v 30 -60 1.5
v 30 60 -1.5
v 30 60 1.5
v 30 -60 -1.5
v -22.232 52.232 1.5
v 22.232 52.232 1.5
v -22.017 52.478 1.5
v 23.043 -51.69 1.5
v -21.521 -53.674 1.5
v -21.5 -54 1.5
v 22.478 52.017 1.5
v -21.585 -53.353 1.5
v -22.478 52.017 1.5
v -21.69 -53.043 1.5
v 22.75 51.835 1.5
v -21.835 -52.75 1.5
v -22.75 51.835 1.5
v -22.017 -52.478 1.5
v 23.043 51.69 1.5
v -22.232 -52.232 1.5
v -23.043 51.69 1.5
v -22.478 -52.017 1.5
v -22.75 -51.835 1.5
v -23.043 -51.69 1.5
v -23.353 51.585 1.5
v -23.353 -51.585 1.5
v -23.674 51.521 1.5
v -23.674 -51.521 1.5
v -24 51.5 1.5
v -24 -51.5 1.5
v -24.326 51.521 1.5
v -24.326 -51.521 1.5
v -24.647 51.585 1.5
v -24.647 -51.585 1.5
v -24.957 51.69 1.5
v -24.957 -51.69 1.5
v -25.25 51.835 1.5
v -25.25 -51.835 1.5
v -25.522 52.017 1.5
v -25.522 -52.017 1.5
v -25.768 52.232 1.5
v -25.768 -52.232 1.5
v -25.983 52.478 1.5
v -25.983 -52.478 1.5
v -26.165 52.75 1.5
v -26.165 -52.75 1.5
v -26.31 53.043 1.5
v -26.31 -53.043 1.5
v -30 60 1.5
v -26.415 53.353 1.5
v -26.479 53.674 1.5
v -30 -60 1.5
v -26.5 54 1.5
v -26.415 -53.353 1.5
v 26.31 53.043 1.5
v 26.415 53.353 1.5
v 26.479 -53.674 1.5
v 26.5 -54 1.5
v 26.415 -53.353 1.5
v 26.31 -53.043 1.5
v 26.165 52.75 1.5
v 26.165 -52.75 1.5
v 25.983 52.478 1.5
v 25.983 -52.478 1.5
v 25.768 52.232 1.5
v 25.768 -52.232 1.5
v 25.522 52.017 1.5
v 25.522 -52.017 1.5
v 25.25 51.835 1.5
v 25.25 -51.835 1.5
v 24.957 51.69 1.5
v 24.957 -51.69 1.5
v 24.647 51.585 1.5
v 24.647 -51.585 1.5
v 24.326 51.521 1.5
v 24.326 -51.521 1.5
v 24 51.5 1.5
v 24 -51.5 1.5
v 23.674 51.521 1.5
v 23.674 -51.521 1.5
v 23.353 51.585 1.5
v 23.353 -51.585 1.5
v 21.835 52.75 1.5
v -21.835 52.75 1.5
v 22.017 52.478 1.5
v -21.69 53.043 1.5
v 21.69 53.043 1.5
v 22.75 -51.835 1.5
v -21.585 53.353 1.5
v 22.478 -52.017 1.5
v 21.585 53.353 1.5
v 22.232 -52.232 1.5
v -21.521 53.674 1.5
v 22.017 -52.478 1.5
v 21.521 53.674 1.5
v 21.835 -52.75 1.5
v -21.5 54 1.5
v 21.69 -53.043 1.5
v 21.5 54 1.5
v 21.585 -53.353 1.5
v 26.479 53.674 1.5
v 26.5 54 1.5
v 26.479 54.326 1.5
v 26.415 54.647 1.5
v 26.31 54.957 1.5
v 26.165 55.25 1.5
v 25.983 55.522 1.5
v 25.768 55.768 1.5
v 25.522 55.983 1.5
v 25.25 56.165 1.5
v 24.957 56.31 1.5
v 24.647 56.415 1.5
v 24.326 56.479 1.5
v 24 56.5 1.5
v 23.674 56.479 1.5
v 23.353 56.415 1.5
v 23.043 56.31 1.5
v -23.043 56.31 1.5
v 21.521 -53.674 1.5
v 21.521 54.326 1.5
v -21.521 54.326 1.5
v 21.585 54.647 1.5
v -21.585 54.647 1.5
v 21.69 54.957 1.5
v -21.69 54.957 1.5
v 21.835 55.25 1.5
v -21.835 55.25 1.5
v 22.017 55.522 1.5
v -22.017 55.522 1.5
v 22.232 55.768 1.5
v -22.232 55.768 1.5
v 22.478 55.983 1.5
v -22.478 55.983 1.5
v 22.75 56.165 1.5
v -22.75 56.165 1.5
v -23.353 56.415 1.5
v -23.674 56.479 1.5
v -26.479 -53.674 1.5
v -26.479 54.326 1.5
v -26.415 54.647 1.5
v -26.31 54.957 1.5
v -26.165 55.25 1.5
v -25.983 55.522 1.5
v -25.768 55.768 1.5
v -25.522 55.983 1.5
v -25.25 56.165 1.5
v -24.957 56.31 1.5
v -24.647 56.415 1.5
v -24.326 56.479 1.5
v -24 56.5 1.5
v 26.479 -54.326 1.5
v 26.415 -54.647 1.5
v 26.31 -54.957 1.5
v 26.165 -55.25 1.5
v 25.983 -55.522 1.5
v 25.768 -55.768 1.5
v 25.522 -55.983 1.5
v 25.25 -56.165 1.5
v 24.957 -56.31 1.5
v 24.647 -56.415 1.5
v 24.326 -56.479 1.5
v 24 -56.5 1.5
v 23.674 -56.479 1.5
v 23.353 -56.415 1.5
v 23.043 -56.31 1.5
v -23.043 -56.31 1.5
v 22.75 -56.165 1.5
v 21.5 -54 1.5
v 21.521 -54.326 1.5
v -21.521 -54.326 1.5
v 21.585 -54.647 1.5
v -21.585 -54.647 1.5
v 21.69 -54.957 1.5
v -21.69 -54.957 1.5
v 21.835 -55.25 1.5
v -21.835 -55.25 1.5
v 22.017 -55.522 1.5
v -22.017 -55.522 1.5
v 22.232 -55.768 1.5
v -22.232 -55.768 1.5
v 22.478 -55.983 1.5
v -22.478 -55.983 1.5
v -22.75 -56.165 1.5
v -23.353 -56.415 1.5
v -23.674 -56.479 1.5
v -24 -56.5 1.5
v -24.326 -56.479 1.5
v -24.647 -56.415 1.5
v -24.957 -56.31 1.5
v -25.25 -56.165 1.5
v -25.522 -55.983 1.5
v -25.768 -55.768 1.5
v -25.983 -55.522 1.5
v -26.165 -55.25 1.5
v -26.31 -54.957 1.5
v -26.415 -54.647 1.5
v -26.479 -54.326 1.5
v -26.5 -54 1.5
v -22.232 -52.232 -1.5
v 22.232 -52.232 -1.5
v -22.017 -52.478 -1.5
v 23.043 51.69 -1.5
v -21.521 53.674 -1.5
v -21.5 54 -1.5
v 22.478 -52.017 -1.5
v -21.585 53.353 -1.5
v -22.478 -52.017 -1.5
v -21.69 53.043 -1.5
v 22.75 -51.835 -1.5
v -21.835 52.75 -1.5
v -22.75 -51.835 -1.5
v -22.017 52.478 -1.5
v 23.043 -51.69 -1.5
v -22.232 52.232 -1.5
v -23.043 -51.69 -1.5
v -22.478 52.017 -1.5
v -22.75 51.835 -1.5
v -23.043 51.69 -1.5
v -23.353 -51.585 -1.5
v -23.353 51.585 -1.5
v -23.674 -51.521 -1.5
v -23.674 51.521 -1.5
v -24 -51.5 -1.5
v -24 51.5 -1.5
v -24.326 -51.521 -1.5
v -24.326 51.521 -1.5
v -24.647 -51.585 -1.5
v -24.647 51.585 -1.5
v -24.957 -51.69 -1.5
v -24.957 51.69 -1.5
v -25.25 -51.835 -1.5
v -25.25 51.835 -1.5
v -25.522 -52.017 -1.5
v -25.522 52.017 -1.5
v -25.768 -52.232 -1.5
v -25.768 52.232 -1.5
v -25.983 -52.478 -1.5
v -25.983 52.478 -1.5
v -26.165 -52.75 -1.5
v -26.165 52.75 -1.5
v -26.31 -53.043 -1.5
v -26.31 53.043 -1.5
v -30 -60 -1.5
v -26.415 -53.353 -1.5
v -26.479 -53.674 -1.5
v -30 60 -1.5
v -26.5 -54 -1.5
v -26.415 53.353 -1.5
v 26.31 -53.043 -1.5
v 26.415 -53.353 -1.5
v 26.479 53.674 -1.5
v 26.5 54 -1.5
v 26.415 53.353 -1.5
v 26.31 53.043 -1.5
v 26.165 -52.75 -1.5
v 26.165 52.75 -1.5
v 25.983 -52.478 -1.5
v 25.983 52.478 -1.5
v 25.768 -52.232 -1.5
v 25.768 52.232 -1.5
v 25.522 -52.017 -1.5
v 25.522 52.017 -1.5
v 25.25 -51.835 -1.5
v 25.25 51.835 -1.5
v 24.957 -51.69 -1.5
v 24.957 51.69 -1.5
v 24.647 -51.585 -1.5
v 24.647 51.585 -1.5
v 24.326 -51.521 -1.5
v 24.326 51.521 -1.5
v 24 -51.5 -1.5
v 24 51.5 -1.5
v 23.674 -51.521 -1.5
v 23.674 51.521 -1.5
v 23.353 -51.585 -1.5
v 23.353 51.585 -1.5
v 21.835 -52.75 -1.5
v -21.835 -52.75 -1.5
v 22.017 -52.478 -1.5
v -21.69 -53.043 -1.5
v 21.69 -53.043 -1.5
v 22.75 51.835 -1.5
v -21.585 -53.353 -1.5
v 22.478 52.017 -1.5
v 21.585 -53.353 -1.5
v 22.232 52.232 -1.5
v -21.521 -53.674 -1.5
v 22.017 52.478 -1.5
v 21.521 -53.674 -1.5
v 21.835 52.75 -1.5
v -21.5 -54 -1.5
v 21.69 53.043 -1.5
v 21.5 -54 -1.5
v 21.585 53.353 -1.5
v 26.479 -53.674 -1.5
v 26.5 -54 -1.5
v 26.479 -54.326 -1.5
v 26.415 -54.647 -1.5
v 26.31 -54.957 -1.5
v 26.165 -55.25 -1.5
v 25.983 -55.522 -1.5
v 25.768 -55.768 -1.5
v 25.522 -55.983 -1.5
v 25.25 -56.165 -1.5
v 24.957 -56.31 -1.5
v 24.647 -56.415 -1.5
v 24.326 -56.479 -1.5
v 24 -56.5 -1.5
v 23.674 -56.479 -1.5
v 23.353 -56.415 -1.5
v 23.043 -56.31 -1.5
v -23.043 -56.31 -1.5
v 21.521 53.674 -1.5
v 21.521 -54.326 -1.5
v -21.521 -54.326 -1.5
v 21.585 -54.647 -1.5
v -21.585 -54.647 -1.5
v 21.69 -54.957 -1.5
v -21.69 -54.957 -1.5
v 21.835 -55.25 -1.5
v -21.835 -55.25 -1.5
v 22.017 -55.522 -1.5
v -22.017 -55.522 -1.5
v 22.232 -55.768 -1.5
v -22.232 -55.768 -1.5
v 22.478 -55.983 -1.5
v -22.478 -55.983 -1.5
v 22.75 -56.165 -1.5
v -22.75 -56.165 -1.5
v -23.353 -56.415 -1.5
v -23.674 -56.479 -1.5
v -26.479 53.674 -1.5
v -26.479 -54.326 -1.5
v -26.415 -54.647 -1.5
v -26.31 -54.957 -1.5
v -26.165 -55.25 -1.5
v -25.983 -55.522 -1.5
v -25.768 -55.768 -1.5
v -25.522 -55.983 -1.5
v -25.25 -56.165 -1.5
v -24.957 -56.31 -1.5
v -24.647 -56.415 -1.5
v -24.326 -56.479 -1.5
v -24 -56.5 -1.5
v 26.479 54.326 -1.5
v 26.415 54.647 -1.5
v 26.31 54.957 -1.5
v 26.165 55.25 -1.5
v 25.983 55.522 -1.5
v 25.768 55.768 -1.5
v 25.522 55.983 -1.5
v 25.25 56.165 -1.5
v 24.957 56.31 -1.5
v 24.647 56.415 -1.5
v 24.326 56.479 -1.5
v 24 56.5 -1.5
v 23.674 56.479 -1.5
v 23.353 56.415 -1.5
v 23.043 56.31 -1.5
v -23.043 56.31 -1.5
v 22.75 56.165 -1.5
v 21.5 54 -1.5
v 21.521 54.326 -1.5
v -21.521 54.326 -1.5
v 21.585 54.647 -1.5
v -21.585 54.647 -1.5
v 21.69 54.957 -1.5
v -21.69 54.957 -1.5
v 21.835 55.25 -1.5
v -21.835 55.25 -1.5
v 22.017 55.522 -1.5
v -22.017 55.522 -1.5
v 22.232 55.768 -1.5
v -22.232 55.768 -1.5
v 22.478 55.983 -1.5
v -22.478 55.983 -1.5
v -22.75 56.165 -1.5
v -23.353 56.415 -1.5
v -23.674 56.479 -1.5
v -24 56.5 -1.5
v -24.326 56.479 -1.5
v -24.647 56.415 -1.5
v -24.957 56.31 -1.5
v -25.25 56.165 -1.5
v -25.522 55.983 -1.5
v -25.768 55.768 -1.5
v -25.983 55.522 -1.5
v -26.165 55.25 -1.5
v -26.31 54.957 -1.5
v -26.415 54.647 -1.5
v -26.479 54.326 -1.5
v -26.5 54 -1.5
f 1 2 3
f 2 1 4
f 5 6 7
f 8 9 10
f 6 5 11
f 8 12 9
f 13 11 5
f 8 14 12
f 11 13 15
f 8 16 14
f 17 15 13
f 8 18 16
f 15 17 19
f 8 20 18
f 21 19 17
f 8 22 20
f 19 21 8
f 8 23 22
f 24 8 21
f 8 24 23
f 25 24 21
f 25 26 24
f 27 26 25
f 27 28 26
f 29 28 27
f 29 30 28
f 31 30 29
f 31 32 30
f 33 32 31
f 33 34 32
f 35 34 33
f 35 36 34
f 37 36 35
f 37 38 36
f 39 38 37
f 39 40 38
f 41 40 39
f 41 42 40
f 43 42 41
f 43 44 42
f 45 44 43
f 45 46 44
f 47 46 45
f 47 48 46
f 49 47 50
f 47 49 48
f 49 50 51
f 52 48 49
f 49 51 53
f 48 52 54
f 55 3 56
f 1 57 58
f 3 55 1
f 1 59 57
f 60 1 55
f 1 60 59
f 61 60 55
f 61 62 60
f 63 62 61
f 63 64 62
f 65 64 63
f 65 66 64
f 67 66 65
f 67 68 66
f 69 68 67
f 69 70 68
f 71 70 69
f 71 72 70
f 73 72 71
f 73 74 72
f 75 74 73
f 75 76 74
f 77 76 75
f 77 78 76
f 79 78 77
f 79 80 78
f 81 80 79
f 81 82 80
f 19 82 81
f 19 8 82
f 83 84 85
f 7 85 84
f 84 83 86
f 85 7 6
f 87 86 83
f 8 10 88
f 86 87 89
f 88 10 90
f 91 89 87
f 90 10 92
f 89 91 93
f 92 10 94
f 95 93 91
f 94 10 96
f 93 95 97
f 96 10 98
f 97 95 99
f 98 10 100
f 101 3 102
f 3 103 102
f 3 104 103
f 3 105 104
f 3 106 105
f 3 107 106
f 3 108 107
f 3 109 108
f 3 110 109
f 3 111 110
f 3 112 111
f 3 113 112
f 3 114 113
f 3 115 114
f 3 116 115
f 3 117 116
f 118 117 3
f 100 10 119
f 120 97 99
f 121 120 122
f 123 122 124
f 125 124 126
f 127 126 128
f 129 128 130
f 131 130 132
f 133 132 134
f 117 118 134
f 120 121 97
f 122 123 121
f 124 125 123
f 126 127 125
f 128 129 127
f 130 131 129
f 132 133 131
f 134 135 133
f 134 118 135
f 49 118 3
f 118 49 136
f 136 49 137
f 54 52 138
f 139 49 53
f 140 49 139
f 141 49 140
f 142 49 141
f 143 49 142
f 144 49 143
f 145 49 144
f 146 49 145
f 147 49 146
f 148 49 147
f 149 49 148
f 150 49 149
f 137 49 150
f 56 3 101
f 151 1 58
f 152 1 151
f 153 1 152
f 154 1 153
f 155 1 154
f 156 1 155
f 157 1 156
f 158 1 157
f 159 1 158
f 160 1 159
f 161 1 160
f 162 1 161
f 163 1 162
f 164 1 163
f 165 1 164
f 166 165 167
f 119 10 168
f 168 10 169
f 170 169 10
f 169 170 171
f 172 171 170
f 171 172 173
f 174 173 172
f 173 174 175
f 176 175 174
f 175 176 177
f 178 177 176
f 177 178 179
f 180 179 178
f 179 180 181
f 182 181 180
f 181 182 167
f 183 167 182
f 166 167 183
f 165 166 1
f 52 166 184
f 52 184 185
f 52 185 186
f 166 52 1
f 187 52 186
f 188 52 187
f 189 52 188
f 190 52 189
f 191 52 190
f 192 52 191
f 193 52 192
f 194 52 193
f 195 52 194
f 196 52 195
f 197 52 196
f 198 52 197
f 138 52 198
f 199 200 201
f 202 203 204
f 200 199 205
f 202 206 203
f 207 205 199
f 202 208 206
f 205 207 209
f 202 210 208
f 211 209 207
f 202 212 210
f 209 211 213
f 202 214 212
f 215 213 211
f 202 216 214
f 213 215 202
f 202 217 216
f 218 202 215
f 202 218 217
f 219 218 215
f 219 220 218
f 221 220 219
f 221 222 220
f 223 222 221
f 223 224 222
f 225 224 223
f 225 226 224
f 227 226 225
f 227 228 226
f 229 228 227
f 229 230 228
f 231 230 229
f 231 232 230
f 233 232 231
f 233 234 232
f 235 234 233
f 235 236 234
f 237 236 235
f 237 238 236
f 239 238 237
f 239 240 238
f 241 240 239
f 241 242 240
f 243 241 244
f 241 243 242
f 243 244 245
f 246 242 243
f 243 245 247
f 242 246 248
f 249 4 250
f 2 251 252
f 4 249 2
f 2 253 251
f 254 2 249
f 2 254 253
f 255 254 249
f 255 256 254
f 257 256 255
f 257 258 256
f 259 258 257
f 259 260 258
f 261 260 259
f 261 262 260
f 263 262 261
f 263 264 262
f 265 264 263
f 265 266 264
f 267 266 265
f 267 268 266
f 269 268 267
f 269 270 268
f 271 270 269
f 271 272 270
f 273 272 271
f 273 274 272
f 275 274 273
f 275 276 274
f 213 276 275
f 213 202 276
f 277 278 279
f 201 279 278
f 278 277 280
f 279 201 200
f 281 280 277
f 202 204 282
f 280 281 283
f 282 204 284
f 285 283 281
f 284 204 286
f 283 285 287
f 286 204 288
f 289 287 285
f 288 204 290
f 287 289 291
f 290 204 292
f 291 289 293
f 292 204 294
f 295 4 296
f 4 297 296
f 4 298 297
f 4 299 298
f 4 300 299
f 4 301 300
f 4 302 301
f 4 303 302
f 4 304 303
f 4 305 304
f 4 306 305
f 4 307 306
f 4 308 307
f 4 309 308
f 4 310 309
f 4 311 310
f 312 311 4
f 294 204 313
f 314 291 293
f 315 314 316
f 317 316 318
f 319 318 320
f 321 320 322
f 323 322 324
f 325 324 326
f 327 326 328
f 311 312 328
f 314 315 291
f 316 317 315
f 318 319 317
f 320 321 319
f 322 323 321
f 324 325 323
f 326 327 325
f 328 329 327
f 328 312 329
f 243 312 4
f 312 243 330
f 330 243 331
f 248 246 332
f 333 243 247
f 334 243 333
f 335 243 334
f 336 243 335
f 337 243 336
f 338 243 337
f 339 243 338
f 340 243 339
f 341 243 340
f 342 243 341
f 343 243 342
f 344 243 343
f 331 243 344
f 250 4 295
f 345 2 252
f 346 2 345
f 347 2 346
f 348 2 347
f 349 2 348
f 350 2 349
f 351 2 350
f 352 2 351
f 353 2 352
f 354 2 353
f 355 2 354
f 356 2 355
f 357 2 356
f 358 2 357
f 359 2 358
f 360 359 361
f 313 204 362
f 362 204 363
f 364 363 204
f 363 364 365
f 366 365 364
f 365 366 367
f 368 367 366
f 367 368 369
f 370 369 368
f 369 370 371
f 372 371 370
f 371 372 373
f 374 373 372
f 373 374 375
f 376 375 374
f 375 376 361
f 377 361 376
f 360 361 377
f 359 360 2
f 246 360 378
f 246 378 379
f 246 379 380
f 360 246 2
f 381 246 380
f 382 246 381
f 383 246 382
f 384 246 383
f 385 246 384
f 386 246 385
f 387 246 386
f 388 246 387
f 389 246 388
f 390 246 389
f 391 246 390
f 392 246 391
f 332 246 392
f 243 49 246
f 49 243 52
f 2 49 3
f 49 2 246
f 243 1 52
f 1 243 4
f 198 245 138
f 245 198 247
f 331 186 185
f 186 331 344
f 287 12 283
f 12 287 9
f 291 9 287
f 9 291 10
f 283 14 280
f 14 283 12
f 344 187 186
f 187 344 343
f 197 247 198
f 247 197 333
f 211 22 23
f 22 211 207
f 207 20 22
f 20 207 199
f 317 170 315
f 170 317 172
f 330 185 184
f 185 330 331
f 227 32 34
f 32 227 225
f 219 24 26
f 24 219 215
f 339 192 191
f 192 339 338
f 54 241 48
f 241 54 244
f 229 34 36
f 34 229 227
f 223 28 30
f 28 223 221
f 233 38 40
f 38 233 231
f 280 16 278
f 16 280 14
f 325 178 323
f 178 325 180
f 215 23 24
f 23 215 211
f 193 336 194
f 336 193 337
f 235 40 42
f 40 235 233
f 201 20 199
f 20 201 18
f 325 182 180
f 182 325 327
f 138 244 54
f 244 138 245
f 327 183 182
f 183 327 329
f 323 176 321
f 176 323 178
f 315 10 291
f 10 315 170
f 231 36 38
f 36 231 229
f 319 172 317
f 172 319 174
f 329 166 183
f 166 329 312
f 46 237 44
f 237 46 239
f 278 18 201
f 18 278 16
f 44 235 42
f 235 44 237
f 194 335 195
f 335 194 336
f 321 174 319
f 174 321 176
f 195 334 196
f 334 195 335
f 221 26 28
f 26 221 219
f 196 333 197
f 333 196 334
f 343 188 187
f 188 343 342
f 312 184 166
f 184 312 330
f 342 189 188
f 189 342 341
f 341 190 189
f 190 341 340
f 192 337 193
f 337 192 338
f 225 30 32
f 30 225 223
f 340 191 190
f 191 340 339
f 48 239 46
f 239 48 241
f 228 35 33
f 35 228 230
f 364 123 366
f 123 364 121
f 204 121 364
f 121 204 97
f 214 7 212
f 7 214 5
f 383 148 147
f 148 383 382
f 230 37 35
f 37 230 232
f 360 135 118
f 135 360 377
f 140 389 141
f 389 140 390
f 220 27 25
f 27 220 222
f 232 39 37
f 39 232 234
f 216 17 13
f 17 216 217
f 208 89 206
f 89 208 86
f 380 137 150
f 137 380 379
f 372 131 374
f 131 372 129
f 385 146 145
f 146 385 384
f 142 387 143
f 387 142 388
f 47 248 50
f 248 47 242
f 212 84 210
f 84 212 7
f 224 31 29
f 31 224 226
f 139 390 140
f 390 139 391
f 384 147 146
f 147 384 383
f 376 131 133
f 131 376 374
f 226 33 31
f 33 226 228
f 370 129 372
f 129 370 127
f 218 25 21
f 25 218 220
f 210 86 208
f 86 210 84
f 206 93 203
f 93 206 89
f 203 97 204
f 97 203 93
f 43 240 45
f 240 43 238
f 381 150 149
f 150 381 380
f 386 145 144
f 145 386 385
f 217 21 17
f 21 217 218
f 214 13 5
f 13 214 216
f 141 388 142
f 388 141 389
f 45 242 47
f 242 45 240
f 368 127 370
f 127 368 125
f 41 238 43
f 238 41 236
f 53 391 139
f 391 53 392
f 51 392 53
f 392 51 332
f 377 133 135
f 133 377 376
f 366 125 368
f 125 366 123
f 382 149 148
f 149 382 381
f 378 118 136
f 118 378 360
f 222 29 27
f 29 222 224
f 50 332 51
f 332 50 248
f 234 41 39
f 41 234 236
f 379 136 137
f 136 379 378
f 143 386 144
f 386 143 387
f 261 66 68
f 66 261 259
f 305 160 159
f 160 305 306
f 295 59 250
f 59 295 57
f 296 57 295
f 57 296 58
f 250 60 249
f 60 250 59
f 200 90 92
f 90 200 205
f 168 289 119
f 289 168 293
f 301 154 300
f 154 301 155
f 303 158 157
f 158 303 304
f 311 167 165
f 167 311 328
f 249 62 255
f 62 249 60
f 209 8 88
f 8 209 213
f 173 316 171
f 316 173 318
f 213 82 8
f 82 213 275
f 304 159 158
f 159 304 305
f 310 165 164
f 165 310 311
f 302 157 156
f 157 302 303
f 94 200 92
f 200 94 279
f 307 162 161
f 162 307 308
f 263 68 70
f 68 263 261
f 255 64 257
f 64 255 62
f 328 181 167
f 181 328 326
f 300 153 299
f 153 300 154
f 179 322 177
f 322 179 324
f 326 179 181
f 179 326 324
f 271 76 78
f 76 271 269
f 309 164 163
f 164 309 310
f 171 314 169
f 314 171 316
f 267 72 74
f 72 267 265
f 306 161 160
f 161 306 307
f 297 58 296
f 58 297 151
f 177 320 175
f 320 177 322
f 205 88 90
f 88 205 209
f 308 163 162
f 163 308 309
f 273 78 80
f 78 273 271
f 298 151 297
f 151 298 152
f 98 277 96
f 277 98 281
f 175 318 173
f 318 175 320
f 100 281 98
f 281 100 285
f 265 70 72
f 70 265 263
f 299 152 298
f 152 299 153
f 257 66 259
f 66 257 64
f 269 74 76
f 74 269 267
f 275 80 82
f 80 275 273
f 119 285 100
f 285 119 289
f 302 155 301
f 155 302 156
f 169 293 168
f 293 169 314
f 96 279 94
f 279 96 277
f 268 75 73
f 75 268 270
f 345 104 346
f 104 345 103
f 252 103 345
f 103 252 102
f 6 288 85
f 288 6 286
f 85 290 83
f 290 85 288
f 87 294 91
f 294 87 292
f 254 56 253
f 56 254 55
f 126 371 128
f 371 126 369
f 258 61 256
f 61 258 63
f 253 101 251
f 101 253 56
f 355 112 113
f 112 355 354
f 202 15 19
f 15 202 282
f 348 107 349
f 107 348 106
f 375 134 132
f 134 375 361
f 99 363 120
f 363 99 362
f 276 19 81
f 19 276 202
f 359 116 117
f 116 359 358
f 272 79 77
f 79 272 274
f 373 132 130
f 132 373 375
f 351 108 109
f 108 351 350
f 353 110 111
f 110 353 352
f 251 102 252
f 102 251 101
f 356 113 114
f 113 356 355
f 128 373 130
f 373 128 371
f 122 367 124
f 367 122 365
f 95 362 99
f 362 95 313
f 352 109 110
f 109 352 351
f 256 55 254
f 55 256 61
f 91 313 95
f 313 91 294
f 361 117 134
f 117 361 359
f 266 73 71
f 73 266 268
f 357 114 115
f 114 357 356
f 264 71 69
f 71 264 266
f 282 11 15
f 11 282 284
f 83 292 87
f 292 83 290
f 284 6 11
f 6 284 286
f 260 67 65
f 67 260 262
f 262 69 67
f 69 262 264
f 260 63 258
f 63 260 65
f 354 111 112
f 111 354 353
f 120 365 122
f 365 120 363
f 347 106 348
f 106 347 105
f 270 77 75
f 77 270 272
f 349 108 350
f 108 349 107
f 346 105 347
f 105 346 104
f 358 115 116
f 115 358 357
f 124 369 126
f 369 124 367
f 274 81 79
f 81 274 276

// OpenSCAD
// ========================================
// a 60 x 120 x 3 mm plate with four 5 mm holes
// NeuroCAD canonical IR; dimensions are millimetres
// ========================================
$fn = 48;

difference() {
  cube(size=[60, 120, 3], center=true);
  translate([-24, -54, 0]) {
    cylinder(r=2.5, h=5, center=true);
  }
  translate([-24, 54, 0]) {
    cylinder(r=2.5, h=5, center=true);
  }
  translate([24, -54, 0]) {
    cylinder(r=2.5, h=5, center=true);
  }
  translate([24, 54, 0]) {
    cylinder(r=2.5, h=5, center=true);
  }
}
